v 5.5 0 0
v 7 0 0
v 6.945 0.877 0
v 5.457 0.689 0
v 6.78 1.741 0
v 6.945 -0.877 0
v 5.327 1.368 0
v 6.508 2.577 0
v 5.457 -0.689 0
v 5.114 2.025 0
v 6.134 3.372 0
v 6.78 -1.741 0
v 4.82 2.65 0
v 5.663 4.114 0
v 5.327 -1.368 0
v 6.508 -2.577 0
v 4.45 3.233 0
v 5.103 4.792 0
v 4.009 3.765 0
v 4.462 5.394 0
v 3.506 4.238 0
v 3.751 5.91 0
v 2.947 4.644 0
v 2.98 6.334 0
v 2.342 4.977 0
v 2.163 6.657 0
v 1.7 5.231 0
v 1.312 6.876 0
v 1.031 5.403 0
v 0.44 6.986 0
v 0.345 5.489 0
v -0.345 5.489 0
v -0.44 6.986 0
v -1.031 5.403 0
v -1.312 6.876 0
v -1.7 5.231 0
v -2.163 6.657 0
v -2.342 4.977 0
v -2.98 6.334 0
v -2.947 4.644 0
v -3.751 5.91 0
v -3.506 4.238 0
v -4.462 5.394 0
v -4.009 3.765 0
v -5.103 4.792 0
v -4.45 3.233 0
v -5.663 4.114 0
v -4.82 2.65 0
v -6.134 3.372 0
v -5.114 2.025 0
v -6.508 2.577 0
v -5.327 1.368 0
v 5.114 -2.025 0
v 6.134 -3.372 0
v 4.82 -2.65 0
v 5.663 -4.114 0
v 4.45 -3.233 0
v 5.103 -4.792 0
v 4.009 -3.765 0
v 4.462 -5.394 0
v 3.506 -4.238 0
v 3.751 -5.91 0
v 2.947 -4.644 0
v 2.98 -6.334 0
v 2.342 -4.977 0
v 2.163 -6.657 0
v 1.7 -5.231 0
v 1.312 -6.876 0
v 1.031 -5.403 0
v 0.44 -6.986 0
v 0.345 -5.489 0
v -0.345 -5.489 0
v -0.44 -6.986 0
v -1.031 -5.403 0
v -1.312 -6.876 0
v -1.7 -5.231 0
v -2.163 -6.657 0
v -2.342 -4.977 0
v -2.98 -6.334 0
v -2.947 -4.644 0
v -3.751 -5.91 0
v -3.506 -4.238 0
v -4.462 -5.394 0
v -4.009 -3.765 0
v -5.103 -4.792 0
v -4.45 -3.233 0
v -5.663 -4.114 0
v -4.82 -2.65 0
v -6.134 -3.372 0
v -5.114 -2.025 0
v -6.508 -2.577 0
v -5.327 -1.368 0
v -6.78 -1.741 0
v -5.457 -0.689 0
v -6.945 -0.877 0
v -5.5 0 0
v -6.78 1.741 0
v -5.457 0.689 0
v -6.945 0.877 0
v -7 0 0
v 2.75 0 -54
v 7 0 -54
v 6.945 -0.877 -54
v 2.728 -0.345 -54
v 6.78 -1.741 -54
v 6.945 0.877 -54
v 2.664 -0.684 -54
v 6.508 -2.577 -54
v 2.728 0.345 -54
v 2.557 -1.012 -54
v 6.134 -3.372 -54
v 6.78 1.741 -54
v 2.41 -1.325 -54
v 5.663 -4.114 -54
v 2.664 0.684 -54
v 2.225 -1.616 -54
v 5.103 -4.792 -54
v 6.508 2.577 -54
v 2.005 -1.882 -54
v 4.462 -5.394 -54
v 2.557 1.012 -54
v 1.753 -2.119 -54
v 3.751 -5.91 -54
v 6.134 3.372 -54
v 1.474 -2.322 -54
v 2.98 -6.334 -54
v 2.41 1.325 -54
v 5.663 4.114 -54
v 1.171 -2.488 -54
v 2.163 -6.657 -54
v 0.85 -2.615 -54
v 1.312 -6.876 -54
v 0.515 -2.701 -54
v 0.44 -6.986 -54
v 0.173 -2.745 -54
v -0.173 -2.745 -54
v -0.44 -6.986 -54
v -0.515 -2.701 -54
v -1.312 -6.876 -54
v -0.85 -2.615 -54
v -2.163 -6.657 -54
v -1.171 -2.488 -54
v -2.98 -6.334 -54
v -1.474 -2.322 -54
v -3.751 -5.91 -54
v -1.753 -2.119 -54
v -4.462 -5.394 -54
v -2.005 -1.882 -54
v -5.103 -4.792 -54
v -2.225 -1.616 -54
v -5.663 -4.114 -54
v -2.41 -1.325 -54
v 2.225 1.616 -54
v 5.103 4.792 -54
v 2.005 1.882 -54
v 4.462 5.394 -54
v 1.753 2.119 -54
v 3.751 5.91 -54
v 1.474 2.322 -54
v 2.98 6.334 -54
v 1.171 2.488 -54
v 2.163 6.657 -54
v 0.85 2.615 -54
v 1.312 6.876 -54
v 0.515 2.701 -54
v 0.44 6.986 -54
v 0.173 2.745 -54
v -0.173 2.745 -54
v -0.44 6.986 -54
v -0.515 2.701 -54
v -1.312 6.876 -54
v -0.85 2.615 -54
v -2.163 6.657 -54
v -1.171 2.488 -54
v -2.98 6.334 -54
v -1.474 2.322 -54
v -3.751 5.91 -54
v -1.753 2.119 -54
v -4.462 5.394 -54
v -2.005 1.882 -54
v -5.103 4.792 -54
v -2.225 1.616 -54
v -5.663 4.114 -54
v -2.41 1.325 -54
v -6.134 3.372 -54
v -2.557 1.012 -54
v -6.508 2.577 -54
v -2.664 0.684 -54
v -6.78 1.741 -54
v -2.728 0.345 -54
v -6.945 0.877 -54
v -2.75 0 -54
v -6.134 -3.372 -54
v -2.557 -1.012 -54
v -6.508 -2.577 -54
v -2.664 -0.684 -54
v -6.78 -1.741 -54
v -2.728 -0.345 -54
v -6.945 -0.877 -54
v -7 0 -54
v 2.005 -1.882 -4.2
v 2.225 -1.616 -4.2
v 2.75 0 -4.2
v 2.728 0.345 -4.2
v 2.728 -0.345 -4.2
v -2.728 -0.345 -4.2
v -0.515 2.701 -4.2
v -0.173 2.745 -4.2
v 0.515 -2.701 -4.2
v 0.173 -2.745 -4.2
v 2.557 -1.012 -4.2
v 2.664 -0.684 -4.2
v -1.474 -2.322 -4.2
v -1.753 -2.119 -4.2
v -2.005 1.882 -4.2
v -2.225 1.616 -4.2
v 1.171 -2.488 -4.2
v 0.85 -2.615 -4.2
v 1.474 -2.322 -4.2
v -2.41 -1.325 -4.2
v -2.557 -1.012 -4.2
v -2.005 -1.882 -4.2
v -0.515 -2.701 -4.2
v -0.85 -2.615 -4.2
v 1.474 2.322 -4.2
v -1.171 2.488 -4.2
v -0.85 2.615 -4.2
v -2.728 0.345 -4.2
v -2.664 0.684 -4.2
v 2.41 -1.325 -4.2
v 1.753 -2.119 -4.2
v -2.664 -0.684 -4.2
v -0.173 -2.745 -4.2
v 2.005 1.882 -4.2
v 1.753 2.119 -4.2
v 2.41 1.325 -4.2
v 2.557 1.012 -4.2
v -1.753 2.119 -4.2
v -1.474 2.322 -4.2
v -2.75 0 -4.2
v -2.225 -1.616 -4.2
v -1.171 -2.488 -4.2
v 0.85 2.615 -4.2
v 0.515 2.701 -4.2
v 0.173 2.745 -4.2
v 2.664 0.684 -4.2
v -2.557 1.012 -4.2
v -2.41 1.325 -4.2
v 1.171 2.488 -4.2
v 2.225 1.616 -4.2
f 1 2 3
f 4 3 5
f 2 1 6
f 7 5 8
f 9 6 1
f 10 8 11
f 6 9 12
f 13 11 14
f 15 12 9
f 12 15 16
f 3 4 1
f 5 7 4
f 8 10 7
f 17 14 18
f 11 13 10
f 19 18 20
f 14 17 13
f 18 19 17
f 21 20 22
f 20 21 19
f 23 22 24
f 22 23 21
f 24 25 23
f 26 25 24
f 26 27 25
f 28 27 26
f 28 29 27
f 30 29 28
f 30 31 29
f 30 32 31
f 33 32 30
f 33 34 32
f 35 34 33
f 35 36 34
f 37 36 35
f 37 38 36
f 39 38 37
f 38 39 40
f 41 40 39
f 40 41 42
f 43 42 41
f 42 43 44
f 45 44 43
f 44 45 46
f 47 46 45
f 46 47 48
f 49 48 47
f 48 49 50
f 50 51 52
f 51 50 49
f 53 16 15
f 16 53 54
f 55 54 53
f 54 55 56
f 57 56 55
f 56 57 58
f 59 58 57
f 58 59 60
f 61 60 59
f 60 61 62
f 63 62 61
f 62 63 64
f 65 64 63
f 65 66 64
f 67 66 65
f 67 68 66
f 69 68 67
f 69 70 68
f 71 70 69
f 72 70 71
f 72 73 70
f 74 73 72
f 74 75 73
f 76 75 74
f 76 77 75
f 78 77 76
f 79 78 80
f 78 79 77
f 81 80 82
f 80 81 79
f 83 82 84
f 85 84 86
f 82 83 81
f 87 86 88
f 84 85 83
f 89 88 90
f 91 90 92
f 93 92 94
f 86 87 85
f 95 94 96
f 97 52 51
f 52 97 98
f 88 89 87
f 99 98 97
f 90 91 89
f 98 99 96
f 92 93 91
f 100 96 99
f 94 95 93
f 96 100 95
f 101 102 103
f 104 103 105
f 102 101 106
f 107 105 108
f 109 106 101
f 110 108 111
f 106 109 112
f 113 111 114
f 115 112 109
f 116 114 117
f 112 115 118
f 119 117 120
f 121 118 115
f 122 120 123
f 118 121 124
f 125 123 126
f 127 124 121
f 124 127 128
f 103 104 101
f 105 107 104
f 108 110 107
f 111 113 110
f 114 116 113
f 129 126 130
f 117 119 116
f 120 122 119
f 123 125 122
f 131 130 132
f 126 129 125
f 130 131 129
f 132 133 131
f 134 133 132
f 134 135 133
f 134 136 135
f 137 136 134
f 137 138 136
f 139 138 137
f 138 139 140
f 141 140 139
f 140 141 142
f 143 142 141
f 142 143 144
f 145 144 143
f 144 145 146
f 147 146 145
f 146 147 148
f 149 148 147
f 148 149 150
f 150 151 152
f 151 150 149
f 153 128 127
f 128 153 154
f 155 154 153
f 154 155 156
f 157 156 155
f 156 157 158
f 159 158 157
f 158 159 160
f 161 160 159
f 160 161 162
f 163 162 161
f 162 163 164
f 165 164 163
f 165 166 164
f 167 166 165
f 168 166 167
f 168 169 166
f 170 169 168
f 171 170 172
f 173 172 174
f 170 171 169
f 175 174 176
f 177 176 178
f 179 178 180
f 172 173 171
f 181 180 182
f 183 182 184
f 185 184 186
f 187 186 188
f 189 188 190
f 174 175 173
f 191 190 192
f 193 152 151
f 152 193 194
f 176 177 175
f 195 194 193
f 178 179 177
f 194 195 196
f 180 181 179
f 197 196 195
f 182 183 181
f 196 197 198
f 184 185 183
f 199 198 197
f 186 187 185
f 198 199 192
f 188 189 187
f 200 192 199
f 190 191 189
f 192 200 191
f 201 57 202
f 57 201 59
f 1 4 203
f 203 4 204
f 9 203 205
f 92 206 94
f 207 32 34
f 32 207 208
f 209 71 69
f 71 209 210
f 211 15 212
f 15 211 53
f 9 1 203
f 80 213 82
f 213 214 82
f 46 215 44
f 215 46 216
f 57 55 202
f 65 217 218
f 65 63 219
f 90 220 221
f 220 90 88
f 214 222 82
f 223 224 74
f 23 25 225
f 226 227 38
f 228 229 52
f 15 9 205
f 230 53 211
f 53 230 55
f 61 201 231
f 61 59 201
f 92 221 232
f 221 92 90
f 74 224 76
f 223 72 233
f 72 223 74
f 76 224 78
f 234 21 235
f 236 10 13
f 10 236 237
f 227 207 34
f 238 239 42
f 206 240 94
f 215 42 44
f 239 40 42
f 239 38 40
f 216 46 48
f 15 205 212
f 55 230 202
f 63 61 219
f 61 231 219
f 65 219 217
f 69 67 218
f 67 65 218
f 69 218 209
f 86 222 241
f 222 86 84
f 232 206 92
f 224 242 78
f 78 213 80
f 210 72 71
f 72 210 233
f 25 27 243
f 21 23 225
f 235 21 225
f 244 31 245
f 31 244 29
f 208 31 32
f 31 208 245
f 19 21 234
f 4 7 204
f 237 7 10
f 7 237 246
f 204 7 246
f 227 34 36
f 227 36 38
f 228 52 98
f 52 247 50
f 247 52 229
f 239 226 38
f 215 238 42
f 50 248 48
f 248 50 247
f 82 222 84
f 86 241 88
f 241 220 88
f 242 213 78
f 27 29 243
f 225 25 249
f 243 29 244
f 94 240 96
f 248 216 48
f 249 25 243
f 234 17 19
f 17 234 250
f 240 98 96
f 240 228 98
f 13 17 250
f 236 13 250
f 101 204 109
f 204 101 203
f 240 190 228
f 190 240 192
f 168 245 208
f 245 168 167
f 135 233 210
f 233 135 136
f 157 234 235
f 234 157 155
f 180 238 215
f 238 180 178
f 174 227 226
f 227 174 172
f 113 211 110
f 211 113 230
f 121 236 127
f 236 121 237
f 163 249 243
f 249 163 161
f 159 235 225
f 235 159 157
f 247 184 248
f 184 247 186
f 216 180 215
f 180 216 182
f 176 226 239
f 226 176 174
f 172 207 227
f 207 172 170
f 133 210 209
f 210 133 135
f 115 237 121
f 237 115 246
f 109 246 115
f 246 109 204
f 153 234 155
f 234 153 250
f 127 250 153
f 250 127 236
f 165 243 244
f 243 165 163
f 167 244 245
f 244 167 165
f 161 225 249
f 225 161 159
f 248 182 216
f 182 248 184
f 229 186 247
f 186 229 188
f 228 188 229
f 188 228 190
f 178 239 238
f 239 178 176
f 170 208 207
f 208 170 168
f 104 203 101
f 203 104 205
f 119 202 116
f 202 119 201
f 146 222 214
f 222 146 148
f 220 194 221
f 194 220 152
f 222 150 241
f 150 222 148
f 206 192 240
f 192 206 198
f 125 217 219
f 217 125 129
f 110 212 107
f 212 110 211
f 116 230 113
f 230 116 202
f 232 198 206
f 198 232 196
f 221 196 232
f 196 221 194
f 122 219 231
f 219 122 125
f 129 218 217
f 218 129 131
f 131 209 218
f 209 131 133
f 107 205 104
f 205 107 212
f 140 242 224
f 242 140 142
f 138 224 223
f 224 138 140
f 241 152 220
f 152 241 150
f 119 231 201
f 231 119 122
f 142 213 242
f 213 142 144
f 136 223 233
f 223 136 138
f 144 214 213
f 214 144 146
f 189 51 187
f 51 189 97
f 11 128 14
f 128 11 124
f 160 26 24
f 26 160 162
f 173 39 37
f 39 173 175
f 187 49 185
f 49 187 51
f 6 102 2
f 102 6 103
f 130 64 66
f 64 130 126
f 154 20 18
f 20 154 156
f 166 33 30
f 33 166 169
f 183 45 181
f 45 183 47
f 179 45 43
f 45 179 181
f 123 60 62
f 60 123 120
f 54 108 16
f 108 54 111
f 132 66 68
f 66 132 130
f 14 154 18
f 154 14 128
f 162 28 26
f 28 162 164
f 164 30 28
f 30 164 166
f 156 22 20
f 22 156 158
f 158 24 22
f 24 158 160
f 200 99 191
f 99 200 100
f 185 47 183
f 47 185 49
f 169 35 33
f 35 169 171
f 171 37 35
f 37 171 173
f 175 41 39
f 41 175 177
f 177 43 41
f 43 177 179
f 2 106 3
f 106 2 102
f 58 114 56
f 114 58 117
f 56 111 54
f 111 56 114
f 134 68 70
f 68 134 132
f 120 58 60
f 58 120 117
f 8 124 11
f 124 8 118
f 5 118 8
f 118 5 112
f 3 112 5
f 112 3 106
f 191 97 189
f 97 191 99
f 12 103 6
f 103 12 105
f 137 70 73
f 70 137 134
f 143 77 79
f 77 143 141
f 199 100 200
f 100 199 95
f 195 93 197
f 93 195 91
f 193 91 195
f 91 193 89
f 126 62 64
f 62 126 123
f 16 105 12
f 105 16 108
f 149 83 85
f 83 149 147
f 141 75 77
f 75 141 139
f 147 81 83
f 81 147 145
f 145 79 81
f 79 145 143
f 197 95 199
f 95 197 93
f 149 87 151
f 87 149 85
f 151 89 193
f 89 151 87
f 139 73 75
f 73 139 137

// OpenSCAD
$fn = 50;


difference() {
	union() {
		translate(v = [0, 0, -54.0000000000]) {
			cylinder(h = 54, r = 7.0000000000);
		}
		cylinder(h = 0, r = 13.0000000000);
	}
	union() {
		translate(v = [0, 0, 0]) {
			rotate(a = [0, 0, 0]) {
				difference() {
					union() {
						#translate(v = [0, 0, -54.0000000000]) {
							cylinder(h = 54, r = 2.2500000000);
						}
						#translate(v = [0, 0, -4.2000000000]) {
							cylinder(h = 4.2000000000, r = 7.0000000000, r1 = 2.7500000000, r2 = 5.5000000000);
						}
						#translate(v = [0, 0, -54.0000000000]) {
							cylinder(h = 54, r = 2.7500000000);
						}
						#translate(v = [0, 0, -54.0000000000]) {
							cylinder(h = 54, r = 2.2500000000);
						}
					}
					union();
				}
			}
		}
	}
}
